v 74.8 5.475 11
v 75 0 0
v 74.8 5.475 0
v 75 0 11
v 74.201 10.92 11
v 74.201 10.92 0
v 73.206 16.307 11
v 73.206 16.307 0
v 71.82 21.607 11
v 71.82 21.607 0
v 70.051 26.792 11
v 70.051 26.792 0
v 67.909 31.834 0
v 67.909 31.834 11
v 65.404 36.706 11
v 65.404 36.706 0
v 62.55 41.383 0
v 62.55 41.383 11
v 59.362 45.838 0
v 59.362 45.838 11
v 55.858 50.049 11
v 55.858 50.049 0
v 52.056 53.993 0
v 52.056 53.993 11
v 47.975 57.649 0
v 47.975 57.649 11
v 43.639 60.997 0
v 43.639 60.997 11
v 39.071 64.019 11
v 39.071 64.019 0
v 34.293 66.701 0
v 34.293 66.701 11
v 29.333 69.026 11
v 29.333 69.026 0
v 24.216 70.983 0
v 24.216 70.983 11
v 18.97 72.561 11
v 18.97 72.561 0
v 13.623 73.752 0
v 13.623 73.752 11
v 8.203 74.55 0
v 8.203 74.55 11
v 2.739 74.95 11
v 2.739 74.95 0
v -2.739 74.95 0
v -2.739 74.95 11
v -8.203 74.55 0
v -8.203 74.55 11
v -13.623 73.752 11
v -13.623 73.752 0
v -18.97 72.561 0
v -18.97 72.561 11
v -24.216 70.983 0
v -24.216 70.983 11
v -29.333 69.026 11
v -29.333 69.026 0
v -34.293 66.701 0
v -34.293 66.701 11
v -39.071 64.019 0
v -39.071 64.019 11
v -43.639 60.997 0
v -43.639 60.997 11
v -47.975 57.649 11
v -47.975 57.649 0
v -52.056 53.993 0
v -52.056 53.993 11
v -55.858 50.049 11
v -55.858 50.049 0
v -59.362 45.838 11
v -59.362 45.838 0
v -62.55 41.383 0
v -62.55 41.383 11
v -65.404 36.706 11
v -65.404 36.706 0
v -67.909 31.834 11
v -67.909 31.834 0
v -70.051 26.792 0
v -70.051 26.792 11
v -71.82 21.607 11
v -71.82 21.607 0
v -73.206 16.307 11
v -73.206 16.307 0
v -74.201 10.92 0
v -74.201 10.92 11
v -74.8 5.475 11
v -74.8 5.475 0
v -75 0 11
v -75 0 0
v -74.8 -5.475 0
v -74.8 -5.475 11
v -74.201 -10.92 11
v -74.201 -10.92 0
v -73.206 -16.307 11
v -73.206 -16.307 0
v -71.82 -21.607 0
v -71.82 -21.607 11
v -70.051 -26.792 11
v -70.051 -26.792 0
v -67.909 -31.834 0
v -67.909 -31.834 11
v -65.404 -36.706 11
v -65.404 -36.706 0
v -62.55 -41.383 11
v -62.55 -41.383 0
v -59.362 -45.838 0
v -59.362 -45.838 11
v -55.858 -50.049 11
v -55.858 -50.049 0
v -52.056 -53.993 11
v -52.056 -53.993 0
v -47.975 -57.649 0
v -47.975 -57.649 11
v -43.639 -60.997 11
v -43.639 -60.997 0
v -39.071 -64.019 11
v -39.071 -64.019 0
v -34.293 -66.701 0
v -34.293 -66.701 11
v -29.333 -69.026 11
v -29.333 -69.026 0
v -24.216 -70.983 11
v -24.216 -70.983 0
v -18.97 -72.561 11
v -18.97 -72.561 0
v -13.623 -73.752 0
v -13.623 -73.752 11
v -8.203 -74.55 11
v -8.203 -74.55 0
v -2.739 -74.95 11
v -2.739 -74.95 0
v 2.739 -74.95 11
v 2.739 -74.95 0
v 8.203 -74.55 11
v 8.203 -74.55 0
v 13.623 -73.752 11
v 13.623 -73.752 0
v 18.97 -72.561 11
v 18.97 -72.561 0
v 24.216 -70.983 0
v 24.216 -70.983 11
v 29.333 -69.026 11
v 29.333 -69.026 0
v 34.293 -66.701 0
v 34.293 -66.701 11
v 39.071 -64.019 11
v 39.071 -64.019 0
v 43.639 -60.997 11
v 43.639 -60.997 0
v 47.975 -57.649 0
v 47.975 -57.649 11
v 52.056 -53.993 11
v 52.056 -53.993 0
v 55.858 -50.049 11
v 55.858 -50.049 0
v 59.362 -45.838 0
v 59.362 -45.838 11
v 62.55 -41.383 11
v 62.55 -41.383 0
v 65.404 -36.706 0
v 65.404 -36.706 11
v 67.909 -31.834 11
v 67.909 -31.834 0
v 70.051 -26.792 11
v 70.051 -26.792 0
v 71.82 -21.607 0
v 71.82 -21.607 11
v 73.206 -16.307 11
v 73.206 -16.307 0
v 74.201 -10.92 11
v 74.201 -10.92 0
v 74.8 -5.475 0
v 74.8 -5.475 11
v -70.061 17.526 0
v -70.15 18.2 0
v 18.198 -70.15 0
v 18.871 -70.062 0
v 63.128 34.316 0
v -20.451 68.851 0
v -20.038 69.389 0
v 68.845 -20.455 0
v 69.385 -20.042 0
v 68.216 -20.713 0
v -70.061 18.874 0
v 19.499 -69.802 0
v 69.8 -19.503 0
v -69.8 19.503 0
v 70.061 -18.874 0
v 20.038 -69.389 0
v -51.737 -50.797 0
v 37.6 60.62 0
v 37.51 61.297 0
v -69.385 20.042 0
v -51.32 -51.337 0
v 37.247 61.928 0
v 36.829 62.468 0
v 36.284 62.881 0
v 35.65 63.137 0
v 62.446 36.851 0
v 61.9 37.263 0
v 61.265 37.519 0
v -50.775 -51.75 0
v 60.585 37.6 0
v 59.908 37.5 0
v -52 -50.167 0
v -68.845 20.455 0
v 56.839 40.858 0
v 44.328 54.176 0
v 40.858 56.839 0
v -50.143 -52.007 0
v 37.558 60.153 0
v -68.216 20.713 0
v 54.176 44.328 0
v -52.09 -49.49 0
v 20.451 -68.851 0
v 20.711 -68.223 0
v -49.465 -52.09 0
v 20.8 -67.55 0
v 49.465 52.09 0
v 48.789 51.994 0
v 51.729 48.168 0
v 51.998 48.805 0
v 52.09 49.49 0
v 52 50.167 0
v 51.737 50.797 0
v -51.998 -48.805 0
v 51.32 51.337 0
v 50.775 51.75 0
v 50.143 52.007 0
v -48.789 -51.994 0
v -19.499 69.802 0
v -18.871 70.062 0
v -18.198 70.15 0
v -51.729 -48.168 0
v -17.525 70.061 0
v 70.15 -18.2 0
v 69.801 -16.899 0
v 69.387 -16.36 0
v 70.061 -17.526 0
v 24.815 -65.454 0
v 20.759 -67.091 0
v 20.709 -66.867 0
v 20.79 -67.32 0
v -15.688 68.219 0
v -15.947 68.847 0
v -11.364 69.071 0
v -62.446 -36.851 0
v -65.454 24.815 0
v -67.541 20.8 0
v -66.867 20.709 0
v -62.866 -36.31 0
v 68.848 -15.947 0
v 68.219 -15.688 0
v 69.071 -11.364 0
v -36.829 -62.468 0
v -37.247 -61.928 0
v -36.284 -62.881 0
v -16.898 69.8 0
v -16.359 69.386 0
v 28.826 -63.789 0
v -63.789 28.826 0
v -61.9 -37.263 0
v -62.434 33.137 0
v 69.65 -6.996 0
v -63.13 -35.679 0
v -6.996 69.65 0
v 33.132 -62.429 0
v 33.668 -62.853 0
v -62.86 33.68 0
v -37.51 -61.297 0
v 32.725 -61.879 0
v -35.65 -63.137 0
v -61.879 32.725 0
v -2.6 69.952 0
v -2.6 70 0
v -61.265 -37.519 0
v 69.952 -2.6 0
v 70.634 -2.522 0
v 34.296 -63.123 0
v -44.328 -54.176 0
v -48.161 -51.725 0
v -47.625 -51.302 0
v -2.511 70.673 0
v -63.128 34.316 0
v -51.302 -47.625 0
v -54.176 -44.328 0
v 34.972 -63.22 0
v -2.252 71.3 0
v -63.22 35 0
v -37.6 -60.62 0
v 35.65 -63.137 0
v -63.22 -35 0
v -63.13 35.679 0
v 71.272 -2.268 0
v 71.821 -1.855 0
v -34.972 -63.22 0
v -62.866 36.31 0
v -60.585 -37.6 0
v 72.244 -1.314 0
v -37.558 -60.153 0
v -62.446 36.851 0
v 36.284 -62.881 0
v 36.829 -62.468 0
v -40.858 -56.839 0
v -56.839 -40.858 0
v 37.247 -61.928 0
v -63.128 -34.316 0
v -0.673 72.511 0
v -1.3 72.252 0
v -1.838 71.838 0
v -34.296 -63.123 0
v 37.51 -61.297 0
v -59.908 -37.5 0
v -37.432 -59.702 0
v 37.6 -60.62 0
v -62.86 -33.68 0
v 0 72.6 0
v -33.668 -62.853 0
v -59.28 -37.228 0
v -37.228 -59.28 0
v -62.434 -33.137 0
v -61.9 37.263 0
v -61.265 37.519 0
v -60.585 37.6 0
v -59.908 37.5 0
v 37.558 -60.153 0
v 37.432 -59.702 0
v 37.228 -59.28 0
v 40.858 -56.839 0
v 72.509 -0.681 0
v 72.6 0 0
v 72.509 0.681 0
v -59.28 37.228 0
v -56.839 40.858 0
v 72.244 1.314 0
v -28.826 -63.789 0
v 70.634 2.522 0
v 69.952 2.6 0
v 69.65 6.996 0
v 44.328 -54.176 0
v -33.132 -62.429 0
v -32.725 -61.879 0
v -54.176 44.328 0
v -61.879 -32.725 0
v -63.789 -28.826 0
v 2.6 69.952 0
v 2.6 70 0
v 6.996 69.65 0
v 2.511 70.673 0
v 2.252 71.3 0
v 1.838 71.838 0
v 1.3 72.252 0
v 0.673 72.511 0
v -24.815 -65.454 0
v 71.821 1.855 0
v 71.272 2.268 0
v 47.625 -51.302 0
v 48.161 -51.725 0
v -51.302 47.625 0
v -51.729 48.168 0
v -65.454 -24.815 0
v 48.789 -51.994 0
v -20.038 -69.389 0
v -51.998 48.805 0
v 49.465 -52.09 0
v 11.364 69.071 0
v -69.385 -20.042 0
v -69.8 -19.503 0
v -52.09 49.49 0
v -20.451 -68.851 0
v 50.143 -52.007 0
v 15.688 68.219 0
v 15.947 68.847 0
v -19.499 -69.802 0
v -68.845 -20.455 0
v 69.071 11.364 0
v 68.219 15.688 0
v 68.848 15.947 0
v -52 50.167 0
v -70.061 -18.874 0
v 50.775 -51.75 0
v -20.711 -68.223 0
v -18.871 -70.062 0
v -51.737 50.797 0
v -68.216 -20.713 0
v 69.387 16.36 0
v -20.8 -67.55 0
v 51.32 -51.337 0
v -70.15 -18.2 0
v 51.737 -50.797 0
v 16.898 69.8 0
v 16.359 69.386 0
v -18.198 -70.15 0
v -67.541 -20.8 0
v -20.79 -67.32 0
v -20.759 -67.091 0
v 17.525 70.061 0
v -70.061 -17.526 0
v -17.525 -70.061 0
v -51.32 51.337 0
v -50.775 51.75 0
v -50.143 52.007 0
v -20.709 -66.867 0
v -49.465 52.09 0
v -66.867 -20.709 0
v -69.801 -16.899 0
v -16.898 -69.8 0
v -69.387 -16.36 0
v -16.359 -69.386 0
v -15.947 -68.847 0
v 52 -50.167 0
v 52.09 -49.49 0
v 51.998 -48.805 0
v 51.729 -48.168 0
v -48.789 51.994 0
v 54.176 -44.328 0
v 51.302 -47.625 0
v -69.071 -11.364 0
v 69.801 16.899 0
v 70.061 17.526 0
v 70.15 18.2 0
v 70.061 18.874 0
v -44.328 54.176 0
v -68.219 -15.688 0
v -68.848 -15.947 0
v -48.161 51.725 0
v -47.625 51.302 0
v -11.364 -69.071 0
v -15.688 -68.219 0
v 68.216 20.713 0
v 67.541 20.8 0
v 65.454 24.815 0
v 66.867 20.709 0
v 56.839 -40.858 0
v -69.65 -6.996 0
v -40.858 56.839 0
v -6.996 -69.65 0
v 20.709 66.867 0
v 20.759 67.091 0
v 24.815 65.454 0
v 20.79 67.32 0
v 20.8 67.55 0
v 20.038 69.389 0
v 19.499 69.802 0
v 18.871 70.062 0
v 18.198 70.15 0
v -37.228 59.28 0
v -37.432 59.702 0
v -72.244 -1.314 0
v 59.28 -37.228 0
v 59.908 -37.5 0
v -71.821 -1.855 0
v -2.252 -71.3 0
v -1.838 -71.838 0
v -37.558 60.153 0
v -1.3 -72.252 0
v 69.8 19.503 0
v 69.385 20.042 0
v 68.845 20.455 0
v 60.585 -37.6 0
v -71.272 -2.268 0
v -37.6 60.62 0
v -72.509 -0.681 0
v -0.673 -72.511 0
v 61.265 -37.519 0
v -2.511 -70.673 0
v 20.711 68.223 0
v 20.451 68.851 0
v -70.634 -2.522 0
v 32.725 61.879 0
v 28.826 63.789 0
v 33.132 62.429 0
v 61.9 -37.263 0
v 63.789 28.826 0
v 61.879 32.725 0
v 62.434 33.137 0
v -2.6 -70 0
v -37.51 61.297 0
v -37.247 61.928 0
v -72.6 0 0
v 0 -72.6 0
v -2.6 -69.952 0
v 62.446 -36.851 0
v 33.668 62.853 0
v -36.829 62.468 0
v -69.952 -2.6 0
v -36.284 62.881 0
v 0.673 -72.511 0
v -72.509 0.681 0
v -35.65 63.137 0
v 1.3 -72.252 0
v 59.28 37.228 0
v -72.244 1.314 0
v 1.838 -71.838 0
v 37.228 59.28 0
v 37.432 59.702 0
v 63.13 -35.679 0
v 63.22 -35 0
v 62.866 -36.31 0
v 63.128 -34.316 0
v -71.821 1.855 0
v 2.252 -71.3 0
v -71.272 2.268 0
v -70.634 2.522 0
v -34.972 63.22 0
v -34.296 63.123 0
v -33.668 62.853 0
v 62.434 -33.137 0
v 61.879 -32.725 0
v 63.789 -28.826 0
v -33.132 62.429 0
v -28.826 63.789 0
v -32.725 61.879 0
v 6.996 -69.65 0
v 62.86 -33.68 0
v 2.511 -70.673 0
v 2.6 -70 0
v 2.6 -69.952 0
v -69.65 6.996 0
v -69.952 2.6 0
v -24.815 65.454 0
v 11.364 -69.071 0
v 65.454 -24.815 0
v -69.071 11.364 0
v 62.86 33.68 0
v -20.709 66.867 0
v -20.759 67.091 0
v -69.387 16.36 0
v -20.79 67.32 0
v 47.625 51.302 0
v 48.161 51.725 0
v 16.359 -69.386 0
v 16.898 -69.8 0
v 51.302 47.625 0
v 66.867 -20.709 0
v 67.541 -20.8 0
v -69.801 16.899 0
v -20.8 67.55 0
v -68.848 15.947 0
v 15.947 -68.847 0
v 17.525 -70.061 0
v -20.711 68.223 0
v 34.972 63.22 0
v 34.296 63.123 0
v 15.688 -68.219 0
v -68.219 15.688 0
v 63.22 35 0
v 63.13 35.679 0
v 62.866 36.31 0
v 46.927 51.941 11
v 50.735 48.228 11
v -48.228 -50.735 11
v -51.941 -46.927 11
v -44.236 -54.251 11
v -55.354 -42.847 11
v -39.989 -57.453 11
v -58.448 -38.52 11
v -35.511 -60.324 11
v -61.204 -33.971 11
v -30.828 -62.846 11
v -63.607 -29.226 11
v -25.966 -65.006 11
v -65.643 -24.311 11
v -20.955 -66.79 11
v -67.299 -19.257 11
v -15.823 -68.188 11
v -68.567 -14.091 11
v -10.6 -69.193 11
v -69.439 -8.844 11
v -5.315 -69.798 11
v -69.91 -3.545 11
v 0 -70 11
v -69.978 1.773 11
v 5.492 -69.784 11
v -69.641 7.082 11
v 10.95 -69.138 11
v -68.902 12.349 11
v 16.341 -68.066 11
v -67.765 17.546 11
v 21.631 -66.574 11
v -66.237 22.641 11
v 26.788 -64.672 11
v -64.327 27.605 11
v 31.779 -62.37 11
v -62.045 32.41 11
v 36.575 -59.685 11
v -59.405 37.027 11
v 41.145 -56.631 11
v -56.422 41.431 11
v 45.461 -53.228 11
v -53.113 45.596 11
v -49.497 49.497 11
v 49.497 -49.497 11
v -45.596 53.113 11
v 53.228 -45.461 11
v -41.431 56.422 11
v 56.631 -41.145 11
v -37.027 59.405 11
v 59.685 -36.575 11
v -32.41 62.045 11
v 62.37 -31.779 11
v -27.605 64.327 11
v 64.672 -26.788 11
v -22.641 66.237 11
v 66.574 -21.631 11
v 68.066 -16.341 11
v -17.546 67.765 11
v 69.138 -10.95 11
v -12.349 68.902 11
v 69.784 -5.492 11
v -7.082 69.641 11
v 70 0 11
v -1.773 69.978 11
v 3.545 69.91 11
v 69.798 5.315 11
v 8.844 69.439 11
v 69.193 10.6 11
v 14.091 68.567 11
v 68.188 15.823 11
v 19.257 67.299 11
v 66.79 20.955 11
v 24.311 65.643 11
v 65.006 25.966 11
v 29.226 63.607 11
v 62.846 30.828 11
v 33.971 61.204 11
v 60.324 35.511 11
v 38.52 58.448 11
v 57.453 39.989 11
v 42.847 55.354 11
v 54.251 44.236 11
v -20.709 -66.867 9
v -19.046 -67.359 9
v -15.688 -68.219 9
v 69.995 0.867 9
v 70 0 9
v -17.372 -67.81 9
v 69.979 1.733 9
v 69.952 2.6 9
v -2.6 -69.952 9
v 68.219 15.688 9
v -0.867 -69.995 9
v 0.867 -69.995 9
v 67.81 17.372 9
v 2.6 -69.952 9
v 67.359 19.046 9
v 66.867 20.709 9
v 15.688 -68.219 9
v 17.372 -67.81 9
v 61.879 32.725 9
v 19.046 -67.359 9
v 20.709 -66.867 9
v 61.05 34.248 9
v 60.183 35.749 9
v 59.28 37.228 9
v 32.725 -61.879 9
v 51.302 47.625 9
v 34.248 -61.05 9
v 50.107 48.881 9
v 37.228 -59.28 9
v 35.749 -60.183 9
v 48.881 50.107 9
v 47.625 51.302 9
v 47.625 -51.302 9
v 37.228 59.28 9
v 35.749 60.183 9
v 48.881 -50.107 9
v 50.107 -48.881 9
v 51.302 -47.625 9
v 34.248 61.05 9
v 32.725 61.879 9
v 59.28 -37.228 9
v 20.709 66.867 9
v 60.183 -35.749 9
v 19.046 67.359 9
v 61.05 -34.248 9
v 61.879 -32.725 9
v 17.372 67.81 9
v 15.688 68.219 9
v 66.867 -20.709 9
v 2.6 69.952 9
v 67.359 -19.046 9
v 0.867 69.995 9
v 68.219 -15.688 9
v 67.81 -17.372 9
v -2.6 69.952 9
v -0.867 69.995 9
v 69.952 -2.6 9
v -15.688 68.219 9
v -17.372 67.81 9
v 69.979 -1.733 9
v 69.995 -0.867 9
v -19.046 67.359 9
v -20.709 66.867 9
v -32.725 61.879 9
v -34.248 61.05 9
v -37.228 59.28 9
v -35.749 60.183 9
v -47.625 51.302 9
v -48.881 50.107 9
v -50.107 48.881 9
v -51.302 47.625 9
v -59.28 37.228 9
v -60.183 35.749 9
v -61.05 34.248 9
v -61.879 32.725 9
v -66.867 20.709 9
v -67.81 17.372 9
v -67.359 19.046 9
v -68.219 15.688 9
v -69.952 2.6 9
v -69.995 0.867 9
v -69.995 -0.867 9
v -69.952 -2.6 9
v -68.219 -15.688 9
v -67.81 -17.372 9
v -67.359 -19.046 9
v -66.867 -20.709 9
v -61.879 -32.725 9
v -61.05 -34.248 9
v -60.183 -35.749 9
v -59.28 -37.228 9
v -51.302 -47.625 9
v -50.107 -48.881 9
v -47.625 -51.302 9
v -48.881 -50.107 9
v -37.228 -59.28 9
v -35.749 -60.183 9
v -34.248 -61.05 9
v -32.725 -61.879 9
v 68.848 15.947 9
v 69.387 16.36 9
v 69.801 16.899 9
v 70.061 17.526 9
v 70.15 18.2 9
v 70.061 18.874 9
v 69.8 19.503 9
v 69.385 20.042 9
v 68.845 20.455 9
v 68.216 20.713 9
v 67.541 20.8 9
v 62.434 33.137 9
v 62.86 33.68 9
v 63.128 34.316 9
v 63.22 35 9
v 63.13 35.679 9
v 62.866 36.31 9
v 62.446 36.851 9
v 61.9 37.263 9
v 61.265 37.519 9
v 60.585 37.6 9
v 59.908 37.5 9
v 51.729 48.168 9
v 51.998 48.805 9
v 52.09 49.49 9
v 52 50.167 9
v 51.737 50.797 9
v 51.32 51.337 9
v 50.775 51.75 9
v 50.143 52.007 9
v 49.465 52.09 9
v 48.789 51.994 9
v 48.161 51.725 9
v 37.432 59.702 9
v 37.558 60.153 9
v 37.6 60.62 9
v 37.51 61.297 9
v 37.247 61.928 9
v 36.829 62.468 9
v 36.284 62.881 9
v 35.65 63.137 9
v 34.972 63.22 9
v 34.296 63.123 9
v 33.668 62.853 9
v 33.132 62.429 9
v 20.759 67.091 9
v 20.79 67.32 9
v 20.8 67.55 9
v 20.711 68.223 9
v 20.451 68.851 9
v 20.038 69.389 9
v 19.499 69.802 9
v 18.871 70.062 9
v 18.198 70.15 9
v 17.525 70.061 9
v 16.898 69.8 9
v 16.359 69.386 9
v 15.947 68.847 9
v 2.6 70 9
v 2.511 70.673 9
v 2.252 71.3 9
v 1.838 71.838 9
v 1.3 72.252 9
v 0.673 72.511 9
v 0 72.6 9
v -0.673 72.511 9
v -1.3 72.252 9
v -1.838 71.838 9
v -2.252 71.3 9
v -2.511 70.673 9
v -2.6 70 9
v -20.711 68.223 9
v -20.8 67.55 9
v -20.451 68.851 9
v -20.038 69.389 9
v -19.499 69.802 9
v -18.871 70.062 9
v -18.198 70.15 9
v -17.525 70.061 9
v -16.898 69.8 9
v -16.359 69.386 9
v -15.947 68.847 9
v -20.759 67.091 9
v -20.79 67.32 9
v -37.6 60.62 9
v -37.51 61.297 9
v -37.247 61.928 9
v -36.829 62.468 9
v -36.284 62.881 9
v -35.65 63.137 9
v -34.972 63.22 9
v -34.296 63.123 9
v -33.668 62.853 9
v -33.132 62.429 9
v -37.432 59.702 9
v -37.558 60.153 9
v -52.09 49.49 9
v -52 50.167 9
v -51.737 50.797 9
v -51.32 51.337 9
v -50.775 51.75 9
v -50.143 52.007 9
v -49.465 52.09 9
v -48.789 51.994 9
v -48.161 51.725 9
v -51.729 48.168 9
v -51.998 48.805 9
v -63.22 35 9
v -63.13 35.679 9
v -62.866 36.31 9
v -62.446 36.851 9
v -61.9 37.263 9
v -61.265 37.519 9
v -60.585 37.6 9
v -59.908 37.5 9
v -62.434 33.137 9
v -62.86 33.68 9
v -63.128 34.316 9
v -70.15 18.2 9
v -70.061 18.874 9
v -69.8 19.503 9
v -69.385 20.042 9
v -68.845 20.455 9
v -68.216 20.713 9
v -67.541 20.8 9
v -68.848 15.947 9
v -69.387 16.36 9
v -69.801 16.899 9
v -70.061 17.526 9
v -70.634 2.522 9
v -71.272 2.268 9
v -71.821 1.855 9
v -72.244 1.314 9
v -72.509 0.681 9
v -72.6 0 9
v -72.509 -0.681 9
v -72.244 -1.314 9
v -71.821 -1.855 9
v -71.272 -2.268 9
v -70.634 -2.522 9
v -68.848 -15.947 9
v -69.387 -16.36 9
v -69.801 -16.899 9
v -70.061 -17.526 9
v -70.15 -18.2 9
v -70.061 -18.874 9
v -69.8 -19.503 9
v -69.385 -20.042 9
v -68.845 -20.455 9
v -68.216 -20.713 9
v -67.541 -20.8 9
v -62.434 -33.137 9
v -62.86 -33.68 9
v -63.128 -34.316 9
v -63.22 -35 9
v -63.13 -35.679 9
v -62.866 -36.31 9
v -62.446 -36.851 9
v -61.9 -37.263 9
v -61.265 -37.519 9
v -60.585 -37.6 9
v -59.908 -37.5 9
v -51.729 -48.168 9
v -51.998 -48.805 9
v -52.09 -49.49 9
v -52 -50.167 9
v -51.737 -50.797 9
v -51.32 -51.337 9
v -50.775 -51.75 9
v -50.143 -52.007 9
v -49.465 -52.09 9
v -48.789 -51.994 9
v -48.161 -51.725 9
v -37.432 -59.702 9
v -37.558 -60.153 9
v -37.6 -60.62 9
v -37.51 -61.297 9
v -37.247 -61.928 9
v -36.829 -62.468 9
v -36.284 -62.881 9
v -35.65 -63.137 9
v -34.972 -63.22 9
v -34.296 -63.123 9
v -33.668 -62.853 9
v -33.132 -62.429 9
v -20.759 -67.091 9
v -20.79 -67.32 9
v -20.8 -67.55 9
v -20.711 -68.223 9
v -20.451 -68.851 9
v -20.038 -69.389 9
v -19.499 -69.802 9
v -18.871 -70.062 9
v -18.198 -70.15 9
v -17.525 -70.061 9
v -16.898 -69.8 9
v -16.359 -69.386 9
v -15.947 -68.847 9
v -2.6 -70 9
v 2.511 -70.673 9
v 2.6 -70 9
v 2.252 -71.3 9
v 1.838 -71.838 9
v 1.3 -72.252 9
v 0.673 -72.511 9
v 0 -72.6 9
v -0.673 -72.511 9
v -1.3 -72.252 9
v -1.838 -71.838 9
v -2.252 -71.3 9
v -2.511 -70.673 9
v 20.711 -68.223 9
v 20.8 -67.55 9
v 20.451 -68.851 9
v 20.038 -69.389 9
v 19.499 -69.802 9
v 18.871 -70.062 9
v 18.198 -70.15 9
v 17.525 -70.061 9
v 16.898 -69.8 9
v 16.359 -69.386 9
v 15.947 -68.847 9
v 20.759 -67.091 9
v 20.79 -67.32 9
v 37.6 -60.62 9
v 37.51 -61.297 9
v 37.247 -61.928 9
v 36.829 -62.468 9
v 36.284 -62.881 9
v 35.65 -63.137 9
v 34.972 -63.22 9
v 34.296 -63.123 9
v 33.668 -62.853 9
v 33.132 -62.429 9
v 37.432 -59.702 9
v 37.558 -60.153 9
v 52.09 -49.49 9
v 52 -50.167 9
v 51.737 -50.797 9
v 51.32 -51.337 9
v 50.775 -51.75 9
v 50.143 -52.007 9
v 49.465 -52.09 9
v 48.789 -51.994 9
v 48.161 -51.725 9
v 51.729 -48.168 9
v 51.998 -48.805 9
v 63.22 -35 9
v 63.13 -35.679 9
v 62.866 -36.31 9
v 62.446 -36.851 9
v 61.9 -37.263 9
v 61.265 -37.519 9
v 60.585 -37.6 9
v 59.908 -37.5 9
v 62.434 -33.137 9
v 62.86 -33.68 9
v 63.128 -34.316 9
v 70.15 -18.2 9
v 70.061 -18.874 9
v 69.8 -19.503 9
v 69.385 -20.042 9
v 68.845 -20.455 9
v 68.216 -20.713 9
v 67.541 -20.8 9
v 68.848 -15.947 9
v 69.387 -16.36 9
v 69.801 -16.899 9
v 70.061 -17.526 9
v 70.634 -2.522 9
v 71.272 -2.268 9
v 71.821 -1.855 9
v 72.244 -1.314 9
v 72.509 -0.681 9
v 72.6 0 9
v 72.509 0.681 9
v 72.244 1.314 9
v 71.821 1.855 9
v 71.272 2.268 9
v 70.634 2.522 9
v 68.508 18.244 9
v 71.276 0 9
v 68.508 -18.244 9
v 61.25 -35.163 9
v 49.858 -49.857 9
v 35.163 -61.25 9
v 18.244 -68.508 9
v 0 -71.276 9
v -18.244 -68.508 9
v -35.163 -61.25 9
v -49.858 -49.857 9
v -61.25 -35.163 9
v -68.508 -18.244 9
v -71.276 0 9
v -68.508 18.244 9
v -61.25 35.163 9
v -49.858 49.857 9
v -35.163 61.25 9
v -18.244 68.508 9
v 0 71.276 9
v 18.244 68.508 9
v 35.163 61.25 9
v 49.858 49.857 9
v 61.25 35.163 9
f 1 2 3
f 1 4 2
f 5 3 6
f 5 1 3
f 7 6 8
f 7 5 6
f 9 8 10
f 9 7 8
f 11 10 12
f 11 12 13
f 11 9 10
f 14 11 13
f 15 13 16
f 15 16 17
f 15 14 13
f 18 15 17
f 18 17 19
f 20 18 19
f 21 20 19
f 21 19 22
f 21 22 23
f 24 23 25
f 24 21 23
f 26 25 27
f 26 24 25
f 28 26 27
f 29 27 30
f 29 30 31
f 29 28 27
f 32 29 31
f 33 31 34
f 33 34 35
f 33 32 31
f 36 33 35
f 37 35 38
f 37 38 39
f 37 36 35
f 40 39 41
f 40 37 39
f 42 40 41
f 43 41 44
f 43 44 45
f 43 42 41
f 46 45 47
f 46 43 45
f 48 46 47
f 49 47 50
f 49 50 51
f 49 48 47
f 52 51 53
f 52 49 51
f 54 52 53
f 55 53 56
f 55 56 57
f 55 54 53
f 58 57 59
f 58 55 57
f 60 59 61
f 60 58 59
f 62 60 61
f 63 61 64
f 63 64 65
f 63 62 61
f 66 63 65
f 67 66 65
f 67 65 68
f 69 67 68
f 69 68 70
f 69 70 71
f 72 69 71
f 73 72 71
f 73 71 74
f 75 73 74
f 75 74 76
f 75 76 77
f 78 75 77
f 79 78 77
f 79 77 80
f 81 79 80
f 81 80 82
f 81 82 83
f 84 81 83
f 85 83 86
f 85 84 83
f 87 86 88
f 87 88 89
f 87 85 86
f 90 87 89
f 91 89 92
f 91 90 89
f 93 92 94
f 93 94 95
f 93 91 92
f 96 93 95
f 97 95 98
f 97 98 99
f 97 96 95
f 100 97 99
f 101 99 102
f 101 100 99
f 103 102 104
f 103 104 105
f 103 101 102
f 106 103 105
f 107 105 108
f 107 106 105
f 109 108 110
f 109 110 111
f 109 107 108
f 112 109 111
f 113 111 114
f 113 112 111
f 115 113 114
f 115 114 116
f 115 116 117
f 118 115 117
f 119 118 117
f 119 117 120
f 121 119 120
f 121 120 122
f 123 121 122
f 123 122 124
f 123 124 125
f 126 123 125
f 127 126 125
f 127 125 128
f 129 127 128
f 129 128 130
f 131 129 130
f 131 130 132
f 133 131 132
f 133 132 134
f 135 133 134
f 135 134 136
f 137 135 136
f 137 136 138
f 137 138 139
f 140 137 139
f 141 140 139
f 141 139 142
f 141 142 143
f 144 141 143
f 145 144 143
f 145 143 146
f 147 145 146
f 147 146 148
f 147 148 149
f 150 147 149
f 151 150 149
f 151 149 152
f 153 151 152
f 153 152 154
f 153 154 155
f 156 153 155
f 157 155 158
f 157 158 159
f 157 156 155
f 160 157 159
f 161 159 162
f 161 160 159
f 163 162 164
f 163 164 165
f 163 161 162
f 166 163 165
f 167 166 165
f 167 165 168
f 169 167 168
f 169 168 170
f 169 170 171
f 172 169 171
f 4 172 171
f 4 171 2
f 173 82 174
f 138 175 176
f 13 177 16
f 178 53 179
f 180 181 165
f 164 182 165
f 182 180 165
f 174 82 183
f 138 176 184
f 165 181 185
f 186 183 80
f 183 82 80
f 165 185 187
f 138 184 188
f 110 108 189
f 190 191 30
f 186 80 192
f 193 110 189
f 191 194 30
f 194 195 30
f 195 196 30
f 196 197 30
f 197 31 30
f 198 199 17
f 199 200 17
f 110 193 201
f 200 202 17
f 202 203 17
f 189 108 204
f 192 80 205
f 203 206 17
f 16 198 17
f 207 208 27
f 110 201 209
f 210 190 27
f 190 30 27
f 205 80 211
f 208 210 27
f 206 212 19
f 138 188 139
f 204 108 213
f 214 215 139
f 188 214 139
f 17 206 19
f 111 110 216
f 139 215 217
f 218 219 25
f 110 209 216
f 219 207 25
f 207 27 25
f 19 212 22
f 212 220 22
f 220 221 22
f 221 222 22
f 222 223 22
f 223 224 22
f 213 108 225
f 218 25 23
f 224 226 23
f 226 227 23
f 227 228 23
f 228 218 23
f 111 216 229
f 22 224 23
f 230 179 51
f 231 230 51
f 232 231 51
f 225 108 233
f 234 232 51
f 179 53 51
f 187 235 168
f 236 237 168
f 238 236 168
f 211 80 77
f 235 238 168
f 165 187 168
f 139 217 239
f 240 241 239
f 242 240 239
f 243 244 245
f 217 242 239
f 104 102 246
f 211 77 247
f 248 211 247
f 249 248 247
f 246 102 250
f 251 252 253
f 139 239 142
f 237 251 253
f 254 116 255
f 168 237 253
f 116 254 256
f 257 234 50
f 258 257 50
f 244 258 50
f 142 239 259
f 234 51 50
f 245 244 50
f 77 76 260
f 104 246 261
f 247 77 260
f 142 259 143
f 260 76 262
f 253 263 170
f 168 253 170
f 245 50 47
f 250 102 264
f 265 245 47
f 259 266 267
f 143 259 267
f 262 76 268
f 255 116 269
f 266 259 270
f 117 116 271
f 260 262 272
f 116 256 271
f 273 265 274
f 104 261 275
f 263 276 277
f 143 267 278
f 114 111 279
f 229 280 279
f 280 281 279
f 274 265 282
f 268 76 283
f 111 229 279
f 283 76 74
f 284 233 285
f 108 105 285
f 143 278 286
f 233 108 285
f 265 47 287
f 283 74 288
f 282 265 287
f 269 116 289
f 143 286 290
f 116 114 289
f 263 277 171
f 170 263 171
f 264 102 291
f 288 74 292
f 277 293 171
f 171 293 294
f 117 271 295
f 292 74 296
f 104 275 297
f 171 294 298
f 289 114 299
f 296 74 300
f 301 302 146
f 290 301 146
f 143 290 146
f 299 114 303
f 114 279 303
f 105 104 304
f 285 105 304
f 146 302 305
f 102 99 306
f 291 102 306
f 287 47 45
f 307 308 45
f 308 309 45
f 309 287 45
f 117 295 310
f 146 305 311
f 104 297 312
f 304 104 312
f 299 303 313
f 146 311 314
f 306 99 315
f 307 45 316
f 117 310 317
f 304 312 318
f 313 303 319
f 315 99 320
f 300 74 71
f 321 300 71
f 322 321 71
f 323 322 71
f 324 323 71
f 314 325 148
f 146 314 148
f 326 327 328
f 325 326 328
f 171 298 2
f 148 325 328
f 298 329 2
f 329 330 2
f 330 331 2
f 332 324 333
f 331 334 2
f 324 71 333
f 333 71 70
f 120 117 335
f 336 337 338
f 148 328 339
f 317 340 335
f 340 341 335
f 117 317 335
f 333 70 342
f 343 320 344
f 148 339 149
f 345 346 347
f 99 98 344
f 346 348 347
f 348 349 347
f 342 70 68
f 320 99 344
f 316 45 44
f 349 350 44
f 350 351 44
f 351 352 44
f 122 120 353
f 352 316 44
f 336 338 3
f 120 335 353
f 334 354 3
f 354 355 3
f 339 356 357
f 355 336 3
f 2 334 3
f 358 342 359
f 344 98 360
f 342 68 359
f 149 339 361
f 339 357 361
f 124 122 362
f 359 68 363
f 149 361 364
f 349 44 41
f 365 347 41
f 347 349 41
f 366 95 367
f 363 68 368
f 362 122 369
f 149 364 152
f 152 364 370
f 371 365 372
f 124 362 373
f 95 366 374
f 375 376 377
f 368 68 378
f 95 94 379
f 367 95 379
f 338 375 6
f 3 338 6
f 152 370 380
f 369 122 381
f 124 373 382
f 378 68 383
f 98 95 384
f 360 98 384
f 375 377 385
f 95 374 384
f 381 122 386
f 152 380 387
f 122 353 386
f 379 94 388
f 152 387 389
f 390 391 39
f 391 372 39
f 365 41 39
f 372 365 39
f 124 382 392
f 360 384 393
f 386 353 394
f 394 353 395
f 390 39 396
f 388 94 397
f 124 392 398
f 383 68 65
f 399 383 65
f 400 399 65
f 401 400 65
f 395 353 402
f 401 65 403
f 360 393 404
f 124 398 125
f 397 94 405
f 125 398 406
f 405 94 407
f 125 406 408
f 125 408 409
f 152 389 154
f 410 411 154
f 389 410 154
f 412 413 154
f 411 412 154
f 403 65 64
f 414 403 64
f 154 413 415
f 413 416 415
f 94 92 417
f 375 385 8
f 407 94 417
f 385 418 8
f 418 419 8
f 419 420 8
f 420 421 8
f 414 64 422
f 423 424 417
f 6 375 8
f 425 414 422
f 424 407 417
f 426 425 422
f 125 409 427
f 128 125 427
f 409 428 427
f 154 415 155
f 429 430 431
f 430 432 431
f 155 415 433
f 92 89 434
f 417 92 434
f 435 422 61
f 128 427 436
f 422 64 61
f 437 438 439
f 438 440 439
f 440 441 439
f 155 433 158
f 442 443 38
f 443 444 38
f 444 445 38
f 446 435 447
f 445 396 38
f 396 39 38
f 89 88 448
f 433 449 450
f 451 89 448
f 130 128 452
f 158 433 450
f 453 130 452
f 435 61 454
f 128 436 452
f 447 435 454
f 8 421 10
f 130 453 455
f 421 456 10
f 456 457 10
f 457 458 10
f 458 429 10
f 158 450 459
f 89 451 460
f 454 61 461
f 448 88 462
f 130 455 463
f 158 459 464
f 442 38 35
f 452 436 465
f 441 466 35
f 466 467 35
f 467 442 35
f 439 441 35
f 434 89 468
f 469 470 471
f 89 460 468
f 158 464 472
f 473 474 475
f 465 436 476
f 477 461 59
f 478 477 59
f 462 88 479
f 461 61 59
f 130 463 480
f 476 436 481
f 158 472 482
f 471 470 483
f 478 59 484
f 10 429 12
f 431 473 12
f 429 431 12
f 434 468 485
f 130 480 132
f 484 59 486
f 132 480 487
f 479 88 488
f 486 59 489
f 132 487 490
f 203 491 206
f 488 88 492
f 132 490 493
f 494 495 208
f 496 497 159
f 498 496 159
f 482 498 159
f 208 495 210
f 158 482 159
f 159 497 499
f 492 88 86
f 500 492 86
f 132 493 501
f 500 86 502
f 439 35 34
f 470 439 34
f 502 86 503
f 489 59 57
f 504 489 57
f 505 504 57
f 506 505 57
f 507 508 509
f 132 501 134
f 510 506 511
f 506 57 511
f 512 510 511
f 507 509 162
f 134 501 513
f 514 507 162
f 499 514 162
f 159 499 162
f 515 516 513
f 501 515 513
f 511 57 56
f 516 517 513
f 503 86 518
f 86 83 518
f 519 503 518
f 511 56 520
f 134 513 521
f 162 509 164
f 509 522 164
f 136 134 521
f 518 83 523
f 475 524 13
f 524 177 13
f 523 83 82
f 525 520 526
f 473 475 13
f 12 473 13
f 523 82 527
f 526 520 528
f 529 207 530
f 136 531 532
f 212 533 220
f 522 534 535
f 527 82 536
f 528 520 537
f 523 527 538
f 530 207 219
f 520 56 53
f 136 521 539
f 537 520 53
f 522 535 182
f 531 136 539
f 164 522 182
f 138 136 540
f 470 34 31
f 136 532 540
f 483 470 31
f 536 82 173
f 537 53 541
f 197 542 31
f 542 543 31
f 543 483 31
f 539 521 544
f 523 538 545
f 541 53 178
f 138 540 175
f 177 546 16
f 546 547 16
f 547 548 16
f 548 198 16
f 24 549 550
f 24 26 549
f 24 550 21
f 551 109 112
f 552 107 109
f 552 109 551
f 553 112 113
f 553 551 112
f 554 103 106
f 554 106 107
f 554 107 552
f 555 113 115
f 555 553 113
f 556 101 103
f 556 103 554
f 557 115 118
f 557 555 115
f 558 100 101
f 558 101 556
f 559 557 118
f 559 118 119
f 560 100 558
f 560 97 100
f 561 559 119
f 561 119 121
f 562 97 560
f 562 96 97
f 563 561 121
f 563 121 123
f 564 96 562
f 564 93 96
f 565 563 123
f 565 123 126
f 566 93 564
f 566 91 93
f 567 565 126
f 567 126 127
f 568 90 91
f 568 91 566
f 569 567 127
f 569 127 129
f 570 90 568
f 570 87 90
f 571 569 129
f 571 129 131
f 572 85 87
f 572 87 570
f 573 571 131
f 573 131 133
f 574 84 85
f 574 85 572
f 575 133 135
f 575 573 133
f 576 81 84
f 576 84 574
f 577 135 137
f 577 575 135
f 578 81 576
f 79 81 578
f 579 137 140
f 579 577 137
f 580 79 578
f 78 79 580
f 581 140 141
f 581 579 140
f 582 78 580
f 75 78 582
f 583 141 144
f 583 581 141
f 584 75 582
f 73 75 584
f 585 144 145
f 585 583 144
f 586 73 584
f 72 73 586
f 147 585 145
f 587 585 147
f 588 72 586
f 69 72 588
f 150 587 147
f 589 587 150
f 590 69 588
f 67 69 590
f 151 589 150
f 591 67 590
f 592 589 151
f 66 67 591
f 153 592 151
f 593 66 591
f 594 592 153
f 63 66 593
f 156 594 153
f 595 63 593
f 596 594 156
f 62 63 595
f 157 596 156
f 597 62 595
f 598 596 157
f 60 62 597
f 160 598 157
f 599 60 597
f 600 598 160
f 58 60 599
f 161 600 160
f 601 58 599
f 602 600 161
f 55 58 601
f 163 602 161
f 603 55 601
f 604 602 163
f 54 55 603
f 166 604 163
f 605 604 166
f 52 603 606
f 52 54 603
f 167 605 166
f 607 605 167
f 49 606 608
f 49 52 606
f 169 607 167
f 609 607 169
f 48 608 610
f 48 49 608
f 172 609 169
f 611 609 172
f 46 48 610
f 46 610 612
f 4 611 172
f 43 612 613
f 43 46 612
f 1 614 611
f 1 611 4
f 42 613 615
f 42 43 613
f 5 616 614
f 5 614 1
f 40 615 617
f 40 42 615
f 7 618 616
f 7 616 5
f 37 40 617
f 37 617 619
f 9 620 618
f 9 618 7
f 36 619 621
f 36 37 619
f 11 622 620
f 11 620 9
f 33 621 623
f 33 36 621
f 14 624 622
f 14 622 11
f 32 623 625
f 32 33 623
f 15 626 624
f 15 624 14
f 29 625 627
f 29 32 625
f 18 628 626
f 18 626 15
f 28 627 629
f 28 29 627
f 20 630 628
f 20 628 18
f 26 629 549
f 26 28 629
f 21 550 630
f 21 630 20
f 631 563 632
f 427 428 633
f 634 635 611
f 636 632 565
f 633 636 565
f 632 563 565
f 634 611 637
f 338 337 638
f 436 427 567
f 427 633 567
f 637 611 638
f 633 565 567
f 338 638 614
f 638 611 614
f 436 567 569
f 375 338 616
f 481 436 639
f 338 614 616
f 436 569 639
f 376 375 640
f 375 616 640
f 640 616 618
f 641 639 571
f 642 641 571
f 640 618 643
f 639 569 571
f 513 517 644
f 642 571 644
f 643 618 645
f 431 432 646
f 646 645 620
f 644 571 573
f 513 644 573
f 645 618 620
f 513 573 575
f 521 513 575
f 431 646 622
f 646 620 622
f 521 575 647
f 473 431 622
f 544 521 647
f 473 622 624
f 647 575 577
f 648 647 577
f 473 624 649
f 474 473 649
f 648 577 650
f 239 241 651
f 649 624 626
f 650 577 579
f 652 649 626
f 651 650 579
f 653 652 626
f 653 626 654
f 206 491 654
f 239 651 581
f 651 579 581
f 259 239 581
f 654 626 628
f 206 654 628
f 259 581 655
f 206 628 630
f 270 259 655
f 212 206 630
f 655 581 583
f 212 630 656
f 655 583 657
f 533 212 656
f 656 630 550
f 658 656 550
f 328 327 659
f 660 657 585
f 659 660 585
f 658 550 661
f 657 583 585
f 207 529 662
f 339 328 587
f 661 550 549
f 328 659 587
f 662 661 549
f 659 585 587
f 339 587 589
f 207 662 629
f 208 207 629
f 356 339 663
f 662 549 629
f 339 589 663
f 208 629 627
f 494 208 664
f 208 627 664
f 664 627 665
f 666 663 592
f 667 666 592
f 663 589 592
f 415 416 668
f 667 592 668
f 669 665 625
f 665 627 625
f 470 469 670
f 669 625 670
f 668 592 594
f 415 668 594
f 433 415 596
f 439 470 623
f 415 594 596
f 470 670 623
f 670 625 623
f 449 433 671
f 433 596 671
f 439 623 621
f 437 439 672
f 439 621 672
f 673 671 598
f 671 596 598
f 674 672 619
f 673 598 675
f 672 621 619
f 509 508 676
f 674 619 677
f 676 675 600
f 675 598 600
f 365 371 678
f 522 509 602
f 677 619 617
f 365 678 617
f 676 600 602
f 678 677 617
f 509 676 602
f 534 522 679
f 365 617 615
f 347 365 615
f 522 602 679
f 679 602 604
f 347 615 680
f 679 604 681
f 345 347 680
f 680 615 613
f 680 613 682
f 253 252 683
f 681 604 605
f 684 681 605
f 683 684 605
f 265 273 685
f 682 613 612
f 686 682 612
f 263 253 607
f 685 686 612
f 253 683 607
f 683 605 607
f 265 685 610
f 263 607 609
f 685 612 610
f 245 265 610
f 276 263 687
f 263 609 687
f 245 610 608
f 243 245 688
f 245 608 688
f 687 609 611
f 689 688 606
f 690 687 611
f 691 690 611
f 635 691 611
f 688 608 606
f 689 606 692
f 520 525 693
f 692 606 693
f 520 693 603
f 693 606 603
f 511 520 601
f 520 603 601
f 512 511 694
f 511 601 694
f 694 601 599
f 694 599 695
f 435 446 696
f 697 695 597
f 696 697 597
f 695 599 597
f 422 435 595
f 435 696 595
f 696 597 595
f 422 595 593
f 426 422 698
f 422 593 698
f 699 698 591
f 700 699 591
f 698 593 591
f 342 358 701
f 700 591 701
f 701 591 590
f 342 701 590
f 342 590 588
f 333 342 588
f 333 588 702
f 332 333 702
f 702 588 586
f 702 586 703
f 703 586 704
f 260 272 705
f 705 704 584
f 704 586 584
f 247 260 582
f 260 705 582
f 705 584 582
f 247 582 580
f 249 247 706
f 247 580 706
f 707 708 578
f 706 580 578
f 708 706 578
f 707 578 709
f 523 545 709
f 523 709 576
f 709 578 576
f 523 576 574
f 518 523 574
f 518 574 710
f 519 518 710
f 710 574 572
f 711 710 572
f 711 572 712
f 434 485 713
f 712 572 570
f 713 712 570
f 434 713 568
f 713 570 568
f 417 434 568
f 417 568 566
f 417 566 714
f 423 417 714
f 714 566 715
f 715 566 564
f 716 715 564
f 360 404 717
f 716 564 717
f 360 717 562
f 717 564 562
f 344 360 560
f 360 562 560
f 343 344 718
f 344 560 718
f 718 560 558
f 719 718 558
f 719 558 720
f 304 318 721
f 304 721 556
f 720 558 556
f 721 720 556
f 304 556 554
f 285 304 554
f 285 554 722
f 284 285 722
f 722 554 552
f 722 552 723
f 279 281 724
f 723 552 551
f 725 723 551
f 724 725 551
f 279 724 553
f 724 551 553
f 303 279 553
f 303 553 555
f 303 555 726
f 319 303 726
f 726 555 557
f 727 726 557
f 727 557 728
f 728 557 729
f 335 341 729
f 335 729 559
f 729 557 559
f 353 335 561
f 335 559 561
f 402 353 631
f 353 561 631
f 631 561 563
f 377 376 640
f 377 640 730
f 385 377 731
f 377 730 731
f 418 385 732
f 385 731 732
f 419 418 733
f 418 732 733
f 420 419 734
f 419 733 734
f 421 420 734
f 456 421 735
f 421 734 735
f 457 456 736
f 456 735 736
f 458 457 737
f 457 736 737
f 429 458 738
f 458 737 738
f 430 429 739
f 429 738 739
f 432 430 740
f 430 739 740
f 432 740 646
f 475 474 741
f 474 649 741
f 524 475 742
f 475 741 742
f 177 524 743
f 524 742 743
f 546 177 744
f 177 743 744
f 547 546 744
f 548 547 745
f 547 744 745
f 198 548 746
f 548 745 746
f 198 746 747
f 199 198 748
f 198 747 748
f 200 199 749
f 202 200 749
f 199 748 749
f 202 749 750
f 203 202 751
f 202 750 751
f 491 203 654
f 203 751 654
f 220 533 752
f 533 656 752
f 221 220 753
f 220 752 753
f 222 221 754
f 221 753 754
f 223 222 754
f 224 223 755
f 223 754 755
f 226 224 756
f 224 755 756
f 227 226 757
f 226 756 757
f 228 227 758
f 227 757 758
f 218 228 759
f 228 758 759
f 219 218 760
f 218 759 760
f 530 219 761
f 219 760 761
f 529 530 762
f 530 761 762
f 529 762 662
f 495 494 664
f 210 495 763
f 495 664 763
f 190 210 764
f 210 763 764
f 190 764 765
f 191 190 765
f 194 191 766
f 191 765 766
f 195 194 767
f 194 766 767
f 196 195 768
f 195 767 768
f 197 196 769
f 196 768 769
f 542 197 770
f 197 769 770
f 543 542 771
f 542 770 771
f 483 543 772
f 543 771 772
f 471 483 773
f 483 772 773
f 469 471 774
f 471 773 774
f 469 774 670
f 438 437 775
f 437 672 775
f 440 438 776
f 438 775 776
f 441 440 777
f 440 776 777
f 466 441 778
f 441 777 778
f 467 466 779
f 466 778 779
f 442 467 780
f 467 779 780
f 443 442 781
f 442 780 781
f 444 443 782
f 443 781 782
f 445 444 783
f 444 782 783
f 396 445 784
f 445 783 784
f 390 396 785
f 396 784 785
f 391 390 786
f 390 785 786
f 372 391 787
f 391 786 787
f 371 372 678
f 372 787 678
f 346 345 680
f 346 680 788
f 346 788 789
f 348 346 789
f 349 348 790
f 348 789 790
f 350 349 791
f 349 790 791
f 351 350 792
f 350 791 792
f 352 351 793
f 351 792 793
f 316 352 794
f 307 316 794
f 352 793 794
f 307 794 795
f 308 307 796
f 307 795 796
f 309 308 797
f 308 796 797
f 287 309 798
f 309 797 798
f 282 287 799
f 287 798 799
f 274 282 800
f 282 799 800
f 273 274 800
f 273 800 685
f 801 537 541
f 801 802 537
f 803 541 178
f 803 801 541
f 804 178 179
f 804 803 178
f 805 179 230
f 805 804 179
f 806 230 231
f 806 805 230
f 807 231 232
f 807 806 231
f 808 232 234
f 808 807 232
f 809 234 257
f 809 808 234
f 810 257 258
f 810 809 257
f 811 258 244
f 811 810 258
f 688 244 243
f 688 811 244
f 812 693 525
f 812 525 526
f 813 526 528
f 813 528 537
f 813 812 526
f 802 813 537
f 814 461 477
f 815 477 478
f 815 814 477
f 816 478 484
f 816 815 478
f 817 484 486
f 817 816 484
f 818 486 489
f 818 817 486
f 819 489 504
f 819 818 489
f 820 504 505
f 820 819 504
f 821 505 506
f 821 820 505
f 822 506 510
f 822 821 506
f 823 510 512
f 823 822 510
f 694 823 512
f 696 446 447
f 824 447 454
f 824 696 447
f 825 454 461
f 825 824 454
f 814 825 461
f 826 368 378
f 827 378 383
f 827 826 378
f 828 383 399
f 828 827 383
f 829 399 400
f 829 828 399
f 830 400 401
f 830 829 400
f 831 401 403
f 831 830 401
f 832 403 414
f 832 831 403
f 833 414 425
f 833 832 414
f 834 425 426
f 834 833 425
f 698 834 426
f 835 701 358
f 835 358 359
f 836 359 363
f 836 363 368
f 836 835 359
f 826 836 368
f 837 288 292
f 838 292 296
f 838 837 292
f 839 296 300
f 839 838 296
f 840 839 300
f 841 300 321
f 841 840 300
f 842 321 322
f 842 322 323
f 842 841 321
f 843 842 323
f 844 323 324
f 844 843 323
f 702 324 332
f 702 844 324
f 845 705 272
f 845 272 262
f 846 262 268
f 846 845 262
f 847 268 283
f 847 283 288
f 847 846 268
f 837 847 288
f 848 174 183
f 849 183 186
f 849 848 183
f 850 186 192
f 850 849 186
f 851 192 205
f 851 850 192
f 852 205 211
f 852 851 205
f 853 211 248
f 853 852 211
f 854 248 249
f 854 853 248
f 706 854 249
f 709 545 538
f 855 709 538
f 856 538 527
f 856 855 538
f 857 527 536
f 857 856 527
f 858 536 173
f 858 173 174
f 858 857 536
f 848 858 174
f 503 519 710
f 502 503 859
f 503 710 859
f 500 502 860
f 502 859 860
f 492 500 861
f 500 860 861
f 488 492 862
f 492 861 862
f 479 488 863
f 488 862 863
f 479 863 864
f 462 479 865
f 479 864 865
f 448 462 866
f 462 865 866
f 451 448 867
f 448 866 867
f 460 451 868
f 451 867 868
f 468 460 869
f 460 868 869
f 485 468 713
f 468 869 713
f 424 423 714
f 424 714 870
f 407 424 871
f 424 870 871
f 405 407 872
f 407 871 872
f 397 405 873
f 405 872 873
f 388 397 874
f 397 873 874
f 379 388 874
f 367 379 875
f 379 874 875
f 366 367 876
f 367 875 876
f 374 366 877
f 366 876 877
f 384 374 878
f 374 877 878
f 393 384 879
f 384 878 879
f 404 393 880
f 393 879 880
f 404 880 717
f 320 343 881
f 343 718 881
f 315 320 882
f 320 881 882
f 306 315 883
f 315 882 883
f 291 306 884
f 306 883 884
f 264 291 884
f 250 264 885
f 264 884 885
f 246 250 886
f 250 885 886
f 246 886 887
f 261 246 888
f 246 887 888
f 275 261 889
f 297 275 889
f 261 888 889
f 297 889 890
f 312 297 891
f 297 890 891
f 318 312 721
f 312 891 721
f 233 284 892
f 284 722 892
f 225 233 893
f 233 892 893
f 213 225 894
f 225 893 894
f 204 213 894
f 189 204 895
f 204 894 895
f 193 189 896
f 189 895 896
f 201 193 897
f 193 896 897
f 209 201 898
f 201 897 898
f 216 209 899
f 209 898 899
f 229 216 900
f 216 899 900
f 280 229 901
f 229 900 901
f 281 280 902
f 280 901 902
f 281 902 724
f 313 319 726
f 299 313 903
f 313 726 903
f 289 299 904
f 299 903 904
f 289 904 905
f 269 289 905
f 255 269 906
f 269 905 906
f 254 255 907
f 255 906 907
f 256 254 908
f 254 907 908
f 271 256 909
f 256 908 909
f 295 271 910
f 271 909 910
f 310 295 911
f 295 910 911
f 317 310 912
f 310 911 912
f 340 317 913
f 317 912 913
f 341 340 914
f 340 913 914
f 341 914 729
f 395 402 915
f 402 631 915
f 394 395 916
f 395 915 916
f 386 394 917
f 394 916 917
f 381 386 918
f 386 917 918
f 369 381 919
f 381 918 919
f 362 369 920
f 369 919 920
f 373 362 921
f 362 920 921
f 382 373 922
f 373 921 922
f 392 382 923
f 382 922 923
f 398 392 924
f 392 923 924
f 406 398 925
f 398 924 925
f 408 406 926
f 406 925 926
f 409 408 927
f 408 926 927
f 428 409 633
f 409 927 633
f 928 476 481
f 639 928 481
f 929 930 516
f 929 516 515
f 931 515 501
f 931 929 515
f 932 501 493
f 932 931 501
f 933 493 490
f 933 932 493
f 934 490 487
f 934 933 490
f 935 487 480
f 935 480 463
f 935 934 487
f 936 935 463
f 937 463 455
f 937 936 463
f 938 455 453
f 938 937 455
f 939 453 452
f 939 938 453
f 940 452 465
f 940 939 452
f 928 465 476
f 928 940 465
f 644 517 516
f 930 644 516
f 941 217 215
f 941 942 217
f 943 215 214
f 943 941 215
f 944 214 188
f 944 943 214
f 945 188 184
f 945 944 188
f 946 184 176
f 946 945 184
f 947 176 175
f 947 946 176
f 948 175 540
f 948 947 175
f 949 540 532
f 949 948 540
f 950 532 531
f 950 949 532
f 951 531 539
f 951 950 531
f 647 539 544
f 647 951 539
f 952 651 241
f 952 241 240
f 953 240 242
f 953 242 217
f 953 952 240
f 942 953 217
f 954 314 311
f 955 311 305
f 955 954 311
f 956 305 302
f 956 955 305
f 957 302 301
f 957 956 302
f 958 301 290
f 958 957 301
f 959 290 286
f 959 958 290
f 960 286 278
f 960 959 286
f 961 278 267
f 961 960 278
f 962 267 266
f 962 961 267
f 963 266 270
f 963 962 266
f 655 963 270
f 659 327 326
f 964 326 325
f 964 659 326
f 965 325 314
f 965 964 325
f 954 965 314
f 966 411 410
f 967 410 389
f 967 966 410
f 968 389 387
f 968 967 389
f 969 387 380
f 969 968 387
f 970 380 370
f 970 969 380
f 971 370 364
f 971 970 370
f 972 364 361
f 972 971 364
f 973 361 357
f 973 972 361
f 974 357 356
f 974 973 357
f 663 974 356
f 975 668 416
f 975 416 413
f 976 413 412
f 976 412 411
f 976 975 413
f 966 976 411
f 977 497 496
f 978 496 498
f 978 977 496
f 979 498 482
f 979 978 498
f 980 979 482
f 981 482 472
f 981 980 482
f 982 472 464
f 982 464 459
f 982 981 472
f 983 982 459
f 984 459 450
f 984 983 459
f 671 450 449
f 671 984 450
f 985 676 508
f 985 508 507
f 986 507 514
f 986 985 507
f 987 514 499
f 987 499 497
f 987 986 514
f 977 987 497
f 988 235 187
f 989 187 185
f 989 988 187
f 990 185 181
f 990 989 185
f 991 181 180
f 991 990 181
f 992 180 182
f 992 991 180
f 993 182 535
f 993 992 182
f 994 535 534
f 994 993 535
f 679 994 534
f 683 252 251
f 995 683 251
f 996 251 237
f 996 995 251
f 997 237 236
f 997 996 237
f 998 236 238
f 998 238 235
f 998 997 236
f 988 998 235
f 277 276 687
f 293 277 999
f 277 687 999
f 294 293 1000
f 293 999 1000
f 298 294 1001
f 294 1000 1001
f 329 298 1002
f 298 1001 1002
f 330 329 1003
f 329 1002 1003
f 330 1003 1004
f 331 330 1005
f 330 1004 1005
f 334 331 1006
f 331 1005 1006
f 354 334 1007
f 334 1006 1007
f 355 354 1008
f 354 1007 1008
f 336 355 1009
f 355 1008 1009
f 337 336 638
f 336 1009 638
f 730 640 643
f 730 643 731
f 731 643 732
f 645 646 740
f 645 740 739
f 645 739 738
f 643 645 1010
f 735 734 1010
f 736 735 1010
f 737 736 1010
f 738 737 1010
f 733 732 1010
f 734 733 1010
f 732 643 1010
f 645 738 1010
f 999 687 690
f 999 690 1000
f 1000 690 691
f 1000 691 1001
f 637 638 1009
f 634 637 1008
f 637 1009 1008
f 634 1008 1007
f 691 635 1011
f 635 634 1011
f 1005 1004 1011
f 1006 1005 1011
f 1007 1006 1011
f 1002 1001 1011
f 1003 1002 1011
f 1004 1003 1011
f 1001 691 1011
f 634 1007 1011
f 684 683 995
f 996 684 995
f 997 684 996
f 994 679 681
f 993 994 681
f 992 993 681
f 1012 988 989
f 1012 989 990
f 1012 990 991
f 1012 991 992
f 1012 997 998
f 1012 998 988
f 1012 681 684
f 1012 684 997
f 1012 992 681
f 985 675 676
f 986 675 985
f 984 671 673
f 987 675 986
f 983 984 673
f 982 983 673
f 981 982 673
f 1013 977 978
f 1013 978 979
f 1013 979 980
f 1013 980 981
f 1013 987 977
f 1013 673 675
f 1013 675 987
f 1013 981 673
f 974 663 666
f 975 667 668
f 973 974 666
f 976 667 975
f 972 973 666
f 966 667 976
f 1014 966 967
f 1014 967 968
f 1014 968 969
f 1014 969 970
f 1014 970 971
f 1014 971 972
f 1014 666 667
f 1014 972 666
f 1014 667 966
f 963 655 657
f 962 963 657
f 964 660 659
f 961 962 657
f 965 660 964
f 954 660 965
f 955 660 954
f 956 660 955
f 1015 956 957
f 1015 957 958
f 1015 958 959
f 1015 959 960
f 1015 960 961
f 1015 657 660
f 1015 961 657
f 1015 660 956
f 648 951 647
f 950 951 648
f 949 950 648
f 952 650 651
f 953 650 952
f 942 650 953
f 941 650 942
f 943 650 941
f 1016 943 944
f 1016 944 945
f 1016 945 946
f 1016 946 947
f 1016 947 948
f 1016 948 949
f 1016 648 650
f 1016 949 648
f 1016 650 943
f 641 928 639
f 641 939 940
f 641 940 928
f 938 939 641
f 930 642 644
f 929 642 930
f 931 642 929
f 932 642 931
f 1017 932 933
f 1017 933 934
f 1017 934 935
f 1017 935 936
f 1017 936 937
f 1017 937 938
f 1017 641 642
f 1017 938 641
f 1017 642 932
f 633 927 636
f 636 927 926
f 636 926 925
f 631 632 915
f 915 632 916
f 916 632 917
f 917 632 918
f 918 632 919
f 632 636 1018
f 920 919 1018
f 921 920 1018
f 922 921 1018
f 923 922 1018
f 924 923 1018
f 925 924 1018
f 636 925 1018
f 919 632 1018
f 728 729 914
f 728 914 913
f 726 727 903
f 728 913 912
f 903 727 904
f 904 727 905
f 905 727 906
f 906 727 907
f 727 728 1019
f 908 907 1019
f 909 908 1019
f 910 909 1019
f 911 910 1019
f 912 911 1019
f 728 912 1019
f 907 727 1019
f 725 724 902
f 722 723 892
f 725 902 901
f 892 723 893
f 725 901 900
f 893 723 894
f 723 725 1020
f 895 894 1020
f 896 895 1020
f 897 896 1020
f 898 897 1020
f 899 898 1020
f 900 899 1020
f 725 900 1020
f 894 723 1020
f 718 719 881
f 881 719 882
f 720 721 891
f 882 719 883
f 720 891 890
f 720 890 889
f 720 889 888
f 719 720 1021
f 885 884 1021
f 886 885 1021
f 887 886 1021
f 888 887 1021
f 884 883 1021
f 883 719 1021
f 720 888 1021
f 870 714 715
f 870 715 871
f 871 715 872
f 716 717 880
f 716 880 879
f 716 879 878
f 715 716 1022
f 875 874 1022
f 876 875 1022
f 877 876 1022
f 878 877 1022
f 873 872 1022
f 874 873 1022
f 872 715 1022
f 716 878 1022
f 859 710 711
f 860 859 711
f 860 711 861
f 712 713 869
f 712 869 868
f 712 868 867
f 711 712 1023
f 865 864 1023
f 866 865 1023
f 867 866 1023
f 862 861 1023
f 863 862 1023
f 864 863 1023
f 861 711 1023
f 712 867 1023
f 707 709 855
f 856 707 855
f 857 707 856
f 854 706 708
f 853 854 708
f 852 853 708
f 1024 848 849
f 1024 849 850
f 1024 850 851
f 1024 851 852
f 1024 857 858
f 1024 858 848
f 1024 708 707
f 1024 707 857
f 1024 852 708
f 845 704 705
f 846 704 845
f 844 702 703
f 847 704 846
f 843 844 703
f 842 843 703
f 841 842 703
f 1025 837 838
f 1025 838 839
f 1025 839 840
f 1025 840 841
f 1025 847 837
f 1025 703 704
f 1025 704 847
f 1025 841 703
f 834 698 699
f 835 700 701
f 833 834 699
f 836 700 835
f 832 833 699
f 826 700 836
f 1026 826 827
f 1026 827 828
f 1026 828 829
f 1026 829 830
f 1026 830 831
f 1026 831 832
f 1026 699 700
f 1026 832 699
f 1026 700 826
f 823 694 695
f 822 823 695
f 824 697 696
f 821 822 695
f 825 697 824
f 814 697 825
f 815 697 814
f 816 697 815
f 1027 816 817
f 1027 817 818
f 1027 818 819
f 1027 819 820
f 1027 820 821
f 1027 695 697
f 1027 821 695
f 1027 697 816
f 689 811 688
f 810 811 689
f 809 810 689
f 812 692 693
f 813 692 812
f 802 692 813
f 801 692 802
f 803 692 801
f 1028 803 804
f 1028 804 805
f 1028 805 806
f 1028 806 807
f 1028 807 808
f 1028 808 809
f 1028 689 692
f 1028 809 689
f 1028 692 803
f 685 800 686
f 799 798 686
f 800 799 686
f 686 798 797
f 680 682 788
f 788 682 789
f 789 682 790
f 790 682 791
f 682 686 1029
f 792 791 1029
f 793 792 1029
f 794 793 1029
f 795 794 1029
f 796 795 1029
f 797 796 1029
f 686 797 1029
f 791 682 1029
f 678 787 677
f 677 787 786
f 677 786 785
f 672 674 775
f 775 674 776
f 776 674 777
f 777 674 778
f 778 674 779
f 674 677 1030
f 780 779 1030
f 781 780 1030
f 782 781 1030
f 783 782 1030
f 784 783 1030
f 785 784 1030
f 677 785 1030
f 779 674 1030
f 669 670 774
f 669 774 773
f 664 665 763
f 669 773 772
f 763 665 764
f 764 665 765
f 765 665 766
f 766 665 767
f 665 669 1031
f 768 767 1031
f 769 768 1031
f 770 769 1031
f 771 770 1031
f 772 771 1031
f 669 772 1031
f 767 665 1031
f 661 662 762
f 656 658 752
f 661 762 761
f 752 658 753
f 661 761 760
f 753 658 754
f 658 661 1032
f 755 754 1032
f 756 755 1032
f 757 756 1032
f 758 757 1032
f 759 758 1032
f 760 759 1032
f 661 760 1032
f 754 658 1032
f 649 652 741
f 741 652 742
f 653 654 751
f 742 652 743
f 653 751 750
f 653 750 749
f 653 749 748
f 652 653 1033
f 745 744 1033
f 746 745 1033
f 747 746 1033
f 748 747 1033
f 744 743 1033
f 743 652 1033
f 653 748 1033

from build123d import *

# Parameters (mm, degrees)
CYLINDER001_R                    = 2.6
CYLINDER001_DEPTH                = 9
CYLINDER001002001_R              = 2.6
CYLINDER001002001_DEPTH          = 9
CYLINDER001002001001_R           = 2.6
CYLINDER001002001001_DEPTH       = 9
CYLINDER001002001001001_R        = 2.6
CYLINDER001002001001001_DEPTH    = 9
CYLINDER001002001001001001_R     = 2.6
CYLINDER001002001001001001_DEPTH = 9
CYLINDER001002_R                 = 2.6
CYLINDER001002_DEPTH             = 9
CYLINDER001001_R                 = 2.6
CYLINDER001001_DEPTH             = 9
CYLINDER_R                       = 70
CYLINDER_DEPTH                   = 20
CYLINDER002_R                    = 75
CYLINDER002_DEPTH                = 11


with BuildPart() as pole1:
    # Cylinder001 → Cylinder001 (new body)
    with BuildSketch(Plane(origin=(70, 0, 0), x_dir=(1, 0, 0), z_dir=(0, 0, 1))):
        Circle(CYLINDER001_R)
    extrude(amount=CYLINDER001_DEPTH)


with BuildPart() as pole2:
    # Cylinder001002001 → Cylinder001002001 (new body)
    with BuildSketch(Plane(origin=(67.55, 18.2, 0), x_dir=(1, 0, 0), z_dir=(0, 0, 1))):
        Circle(CYLINDER001002001_R)
    extrude(amount=CYLINDER001002001_DEPTH)


with BuildPart() as pole003:
    # Cylinder001002001001 → Cylinder001002001001 (new body)
    with BuildSketch(Plane(origin=(60.62, 35, 0), x_dir=(1, 0, 0), z_dir=(0, 0, 1))):
        Circle(CYLINDER001002001001_R)
    extrude(amount=CYLINDER001002001001_DEPTH)


with BuildPart() as pole004:
    # Cylinder001002001001001 → Cylinder001002001001001 (new body)
    with BuildSketch(Plane(origin=(49.49, 49.49, 0), x_dir=(1, 0, 0), z_dir=(0, 0, 1))):
        Circle(CYLINDER001002001001001_R)
    extrude(amount=CYLINDER001002001001001_DEPTH)


with BuildPart() as pole005:
    # Cylinder001002001001001001 → Cylinder001002001001001001 (new body)
    with BuildSketch(Plane(origin=(35, 60.62, 0), x_dir=(1, 0, 0), z_dir=(0, 0, 1))):
        Circle(CYLINDER001002001001001001_R)
    extrude(amount=CYLINDER001002001001001001_DEPTH)


with BuildPart() as pole006:
    # Cylinder001002 → Cylinder001002 (new body)
    with BuildSketch(Plane(origin=(18.2, 67.55, 0), x_dir=(1, 0, 0), z_dir=(0, 0, 1))):
        Circle(CYLINDER001002_R)
    extrude(amount=CYLINDER001002_DEPTH)


with BuildPart() as fusion:
    # Cylinder001001 → Cylinder001001 (new body)
    with BuildSketch(Plane(origin=(0, 70, 0), x_dir=(1, 0, 0), z_dir=(0, 0, 1))):
        Circle(CYLINDER001001_R)
    extrude(amount=CYLINDER001001_DEPTH)

    # Fusion: union pole1, pole2, pole003, pole004, pole005, pole006
    add(pole1.part)
    add(pole2.part)
    add(pole003.part)
    add(pole004.part)
    add(pole005.part)
    add(pole006.part)


with BuildPart() as part_mirroring:
    # Part__Mirroring: instance of Fusion
    add(fusion.part.mirror(Plane(origin=(0, 0, 0), x_dir=(1, 0, 0), z_dir=(0, 1, 0))))


with BuildPart() as part_mirroring001:
    # Part__Mirroring001: instance of Part__Mirroring
    add(part_mirroring.part.mirror(Plane(origin=(0, 0, 0), x_dir=(0, -1, 0), z_dir=(1, 0, 0))))


with BuildPart() as part_mirroring002:
    # Part__Mirroring002: instance of Part__Mirroring001
    add(part_mirroring001.part.mirror(Plane(origin=(0, 0, 0), x_dir=(1, 0, 0), z_dir=(0, 1, 0))))


with BuildPart() as fusion001:
    # Fusion001 base: copy of Fusion
    add(fusion.part)

    # Fusion001: union Part__Mirroring, Part__Mirroring001, Part__Mirroring002
    add(part_mirroring.part)
    add(part_mirroring001.part)
    add(part_mirroring002.part)


with BuildPart() as cylinder:
    # Cylinder → Cylinder (new body)
    with BuildSketch(Plane.XY):
        Circle(CYLINDER_R)
    extrude(amount=CYLINDER_DEPTH)


with BuildPart() as cut001:
    # Cylinder002 → Cylinder002 (new body)
    with BuildSketch(Plane.XY):
        Circle(CYLINDER002_R)
    extrude(amount=CYLINDER002_DEPTH)

    # Cut: cut Cylinder
    add(cylinder.part, mode=Mode.SUBTRACT)

    # Cut001: cut Fusion001
    add(fusion001.part, mode=Mode.SUBTRACT)


solid = cut001.part
